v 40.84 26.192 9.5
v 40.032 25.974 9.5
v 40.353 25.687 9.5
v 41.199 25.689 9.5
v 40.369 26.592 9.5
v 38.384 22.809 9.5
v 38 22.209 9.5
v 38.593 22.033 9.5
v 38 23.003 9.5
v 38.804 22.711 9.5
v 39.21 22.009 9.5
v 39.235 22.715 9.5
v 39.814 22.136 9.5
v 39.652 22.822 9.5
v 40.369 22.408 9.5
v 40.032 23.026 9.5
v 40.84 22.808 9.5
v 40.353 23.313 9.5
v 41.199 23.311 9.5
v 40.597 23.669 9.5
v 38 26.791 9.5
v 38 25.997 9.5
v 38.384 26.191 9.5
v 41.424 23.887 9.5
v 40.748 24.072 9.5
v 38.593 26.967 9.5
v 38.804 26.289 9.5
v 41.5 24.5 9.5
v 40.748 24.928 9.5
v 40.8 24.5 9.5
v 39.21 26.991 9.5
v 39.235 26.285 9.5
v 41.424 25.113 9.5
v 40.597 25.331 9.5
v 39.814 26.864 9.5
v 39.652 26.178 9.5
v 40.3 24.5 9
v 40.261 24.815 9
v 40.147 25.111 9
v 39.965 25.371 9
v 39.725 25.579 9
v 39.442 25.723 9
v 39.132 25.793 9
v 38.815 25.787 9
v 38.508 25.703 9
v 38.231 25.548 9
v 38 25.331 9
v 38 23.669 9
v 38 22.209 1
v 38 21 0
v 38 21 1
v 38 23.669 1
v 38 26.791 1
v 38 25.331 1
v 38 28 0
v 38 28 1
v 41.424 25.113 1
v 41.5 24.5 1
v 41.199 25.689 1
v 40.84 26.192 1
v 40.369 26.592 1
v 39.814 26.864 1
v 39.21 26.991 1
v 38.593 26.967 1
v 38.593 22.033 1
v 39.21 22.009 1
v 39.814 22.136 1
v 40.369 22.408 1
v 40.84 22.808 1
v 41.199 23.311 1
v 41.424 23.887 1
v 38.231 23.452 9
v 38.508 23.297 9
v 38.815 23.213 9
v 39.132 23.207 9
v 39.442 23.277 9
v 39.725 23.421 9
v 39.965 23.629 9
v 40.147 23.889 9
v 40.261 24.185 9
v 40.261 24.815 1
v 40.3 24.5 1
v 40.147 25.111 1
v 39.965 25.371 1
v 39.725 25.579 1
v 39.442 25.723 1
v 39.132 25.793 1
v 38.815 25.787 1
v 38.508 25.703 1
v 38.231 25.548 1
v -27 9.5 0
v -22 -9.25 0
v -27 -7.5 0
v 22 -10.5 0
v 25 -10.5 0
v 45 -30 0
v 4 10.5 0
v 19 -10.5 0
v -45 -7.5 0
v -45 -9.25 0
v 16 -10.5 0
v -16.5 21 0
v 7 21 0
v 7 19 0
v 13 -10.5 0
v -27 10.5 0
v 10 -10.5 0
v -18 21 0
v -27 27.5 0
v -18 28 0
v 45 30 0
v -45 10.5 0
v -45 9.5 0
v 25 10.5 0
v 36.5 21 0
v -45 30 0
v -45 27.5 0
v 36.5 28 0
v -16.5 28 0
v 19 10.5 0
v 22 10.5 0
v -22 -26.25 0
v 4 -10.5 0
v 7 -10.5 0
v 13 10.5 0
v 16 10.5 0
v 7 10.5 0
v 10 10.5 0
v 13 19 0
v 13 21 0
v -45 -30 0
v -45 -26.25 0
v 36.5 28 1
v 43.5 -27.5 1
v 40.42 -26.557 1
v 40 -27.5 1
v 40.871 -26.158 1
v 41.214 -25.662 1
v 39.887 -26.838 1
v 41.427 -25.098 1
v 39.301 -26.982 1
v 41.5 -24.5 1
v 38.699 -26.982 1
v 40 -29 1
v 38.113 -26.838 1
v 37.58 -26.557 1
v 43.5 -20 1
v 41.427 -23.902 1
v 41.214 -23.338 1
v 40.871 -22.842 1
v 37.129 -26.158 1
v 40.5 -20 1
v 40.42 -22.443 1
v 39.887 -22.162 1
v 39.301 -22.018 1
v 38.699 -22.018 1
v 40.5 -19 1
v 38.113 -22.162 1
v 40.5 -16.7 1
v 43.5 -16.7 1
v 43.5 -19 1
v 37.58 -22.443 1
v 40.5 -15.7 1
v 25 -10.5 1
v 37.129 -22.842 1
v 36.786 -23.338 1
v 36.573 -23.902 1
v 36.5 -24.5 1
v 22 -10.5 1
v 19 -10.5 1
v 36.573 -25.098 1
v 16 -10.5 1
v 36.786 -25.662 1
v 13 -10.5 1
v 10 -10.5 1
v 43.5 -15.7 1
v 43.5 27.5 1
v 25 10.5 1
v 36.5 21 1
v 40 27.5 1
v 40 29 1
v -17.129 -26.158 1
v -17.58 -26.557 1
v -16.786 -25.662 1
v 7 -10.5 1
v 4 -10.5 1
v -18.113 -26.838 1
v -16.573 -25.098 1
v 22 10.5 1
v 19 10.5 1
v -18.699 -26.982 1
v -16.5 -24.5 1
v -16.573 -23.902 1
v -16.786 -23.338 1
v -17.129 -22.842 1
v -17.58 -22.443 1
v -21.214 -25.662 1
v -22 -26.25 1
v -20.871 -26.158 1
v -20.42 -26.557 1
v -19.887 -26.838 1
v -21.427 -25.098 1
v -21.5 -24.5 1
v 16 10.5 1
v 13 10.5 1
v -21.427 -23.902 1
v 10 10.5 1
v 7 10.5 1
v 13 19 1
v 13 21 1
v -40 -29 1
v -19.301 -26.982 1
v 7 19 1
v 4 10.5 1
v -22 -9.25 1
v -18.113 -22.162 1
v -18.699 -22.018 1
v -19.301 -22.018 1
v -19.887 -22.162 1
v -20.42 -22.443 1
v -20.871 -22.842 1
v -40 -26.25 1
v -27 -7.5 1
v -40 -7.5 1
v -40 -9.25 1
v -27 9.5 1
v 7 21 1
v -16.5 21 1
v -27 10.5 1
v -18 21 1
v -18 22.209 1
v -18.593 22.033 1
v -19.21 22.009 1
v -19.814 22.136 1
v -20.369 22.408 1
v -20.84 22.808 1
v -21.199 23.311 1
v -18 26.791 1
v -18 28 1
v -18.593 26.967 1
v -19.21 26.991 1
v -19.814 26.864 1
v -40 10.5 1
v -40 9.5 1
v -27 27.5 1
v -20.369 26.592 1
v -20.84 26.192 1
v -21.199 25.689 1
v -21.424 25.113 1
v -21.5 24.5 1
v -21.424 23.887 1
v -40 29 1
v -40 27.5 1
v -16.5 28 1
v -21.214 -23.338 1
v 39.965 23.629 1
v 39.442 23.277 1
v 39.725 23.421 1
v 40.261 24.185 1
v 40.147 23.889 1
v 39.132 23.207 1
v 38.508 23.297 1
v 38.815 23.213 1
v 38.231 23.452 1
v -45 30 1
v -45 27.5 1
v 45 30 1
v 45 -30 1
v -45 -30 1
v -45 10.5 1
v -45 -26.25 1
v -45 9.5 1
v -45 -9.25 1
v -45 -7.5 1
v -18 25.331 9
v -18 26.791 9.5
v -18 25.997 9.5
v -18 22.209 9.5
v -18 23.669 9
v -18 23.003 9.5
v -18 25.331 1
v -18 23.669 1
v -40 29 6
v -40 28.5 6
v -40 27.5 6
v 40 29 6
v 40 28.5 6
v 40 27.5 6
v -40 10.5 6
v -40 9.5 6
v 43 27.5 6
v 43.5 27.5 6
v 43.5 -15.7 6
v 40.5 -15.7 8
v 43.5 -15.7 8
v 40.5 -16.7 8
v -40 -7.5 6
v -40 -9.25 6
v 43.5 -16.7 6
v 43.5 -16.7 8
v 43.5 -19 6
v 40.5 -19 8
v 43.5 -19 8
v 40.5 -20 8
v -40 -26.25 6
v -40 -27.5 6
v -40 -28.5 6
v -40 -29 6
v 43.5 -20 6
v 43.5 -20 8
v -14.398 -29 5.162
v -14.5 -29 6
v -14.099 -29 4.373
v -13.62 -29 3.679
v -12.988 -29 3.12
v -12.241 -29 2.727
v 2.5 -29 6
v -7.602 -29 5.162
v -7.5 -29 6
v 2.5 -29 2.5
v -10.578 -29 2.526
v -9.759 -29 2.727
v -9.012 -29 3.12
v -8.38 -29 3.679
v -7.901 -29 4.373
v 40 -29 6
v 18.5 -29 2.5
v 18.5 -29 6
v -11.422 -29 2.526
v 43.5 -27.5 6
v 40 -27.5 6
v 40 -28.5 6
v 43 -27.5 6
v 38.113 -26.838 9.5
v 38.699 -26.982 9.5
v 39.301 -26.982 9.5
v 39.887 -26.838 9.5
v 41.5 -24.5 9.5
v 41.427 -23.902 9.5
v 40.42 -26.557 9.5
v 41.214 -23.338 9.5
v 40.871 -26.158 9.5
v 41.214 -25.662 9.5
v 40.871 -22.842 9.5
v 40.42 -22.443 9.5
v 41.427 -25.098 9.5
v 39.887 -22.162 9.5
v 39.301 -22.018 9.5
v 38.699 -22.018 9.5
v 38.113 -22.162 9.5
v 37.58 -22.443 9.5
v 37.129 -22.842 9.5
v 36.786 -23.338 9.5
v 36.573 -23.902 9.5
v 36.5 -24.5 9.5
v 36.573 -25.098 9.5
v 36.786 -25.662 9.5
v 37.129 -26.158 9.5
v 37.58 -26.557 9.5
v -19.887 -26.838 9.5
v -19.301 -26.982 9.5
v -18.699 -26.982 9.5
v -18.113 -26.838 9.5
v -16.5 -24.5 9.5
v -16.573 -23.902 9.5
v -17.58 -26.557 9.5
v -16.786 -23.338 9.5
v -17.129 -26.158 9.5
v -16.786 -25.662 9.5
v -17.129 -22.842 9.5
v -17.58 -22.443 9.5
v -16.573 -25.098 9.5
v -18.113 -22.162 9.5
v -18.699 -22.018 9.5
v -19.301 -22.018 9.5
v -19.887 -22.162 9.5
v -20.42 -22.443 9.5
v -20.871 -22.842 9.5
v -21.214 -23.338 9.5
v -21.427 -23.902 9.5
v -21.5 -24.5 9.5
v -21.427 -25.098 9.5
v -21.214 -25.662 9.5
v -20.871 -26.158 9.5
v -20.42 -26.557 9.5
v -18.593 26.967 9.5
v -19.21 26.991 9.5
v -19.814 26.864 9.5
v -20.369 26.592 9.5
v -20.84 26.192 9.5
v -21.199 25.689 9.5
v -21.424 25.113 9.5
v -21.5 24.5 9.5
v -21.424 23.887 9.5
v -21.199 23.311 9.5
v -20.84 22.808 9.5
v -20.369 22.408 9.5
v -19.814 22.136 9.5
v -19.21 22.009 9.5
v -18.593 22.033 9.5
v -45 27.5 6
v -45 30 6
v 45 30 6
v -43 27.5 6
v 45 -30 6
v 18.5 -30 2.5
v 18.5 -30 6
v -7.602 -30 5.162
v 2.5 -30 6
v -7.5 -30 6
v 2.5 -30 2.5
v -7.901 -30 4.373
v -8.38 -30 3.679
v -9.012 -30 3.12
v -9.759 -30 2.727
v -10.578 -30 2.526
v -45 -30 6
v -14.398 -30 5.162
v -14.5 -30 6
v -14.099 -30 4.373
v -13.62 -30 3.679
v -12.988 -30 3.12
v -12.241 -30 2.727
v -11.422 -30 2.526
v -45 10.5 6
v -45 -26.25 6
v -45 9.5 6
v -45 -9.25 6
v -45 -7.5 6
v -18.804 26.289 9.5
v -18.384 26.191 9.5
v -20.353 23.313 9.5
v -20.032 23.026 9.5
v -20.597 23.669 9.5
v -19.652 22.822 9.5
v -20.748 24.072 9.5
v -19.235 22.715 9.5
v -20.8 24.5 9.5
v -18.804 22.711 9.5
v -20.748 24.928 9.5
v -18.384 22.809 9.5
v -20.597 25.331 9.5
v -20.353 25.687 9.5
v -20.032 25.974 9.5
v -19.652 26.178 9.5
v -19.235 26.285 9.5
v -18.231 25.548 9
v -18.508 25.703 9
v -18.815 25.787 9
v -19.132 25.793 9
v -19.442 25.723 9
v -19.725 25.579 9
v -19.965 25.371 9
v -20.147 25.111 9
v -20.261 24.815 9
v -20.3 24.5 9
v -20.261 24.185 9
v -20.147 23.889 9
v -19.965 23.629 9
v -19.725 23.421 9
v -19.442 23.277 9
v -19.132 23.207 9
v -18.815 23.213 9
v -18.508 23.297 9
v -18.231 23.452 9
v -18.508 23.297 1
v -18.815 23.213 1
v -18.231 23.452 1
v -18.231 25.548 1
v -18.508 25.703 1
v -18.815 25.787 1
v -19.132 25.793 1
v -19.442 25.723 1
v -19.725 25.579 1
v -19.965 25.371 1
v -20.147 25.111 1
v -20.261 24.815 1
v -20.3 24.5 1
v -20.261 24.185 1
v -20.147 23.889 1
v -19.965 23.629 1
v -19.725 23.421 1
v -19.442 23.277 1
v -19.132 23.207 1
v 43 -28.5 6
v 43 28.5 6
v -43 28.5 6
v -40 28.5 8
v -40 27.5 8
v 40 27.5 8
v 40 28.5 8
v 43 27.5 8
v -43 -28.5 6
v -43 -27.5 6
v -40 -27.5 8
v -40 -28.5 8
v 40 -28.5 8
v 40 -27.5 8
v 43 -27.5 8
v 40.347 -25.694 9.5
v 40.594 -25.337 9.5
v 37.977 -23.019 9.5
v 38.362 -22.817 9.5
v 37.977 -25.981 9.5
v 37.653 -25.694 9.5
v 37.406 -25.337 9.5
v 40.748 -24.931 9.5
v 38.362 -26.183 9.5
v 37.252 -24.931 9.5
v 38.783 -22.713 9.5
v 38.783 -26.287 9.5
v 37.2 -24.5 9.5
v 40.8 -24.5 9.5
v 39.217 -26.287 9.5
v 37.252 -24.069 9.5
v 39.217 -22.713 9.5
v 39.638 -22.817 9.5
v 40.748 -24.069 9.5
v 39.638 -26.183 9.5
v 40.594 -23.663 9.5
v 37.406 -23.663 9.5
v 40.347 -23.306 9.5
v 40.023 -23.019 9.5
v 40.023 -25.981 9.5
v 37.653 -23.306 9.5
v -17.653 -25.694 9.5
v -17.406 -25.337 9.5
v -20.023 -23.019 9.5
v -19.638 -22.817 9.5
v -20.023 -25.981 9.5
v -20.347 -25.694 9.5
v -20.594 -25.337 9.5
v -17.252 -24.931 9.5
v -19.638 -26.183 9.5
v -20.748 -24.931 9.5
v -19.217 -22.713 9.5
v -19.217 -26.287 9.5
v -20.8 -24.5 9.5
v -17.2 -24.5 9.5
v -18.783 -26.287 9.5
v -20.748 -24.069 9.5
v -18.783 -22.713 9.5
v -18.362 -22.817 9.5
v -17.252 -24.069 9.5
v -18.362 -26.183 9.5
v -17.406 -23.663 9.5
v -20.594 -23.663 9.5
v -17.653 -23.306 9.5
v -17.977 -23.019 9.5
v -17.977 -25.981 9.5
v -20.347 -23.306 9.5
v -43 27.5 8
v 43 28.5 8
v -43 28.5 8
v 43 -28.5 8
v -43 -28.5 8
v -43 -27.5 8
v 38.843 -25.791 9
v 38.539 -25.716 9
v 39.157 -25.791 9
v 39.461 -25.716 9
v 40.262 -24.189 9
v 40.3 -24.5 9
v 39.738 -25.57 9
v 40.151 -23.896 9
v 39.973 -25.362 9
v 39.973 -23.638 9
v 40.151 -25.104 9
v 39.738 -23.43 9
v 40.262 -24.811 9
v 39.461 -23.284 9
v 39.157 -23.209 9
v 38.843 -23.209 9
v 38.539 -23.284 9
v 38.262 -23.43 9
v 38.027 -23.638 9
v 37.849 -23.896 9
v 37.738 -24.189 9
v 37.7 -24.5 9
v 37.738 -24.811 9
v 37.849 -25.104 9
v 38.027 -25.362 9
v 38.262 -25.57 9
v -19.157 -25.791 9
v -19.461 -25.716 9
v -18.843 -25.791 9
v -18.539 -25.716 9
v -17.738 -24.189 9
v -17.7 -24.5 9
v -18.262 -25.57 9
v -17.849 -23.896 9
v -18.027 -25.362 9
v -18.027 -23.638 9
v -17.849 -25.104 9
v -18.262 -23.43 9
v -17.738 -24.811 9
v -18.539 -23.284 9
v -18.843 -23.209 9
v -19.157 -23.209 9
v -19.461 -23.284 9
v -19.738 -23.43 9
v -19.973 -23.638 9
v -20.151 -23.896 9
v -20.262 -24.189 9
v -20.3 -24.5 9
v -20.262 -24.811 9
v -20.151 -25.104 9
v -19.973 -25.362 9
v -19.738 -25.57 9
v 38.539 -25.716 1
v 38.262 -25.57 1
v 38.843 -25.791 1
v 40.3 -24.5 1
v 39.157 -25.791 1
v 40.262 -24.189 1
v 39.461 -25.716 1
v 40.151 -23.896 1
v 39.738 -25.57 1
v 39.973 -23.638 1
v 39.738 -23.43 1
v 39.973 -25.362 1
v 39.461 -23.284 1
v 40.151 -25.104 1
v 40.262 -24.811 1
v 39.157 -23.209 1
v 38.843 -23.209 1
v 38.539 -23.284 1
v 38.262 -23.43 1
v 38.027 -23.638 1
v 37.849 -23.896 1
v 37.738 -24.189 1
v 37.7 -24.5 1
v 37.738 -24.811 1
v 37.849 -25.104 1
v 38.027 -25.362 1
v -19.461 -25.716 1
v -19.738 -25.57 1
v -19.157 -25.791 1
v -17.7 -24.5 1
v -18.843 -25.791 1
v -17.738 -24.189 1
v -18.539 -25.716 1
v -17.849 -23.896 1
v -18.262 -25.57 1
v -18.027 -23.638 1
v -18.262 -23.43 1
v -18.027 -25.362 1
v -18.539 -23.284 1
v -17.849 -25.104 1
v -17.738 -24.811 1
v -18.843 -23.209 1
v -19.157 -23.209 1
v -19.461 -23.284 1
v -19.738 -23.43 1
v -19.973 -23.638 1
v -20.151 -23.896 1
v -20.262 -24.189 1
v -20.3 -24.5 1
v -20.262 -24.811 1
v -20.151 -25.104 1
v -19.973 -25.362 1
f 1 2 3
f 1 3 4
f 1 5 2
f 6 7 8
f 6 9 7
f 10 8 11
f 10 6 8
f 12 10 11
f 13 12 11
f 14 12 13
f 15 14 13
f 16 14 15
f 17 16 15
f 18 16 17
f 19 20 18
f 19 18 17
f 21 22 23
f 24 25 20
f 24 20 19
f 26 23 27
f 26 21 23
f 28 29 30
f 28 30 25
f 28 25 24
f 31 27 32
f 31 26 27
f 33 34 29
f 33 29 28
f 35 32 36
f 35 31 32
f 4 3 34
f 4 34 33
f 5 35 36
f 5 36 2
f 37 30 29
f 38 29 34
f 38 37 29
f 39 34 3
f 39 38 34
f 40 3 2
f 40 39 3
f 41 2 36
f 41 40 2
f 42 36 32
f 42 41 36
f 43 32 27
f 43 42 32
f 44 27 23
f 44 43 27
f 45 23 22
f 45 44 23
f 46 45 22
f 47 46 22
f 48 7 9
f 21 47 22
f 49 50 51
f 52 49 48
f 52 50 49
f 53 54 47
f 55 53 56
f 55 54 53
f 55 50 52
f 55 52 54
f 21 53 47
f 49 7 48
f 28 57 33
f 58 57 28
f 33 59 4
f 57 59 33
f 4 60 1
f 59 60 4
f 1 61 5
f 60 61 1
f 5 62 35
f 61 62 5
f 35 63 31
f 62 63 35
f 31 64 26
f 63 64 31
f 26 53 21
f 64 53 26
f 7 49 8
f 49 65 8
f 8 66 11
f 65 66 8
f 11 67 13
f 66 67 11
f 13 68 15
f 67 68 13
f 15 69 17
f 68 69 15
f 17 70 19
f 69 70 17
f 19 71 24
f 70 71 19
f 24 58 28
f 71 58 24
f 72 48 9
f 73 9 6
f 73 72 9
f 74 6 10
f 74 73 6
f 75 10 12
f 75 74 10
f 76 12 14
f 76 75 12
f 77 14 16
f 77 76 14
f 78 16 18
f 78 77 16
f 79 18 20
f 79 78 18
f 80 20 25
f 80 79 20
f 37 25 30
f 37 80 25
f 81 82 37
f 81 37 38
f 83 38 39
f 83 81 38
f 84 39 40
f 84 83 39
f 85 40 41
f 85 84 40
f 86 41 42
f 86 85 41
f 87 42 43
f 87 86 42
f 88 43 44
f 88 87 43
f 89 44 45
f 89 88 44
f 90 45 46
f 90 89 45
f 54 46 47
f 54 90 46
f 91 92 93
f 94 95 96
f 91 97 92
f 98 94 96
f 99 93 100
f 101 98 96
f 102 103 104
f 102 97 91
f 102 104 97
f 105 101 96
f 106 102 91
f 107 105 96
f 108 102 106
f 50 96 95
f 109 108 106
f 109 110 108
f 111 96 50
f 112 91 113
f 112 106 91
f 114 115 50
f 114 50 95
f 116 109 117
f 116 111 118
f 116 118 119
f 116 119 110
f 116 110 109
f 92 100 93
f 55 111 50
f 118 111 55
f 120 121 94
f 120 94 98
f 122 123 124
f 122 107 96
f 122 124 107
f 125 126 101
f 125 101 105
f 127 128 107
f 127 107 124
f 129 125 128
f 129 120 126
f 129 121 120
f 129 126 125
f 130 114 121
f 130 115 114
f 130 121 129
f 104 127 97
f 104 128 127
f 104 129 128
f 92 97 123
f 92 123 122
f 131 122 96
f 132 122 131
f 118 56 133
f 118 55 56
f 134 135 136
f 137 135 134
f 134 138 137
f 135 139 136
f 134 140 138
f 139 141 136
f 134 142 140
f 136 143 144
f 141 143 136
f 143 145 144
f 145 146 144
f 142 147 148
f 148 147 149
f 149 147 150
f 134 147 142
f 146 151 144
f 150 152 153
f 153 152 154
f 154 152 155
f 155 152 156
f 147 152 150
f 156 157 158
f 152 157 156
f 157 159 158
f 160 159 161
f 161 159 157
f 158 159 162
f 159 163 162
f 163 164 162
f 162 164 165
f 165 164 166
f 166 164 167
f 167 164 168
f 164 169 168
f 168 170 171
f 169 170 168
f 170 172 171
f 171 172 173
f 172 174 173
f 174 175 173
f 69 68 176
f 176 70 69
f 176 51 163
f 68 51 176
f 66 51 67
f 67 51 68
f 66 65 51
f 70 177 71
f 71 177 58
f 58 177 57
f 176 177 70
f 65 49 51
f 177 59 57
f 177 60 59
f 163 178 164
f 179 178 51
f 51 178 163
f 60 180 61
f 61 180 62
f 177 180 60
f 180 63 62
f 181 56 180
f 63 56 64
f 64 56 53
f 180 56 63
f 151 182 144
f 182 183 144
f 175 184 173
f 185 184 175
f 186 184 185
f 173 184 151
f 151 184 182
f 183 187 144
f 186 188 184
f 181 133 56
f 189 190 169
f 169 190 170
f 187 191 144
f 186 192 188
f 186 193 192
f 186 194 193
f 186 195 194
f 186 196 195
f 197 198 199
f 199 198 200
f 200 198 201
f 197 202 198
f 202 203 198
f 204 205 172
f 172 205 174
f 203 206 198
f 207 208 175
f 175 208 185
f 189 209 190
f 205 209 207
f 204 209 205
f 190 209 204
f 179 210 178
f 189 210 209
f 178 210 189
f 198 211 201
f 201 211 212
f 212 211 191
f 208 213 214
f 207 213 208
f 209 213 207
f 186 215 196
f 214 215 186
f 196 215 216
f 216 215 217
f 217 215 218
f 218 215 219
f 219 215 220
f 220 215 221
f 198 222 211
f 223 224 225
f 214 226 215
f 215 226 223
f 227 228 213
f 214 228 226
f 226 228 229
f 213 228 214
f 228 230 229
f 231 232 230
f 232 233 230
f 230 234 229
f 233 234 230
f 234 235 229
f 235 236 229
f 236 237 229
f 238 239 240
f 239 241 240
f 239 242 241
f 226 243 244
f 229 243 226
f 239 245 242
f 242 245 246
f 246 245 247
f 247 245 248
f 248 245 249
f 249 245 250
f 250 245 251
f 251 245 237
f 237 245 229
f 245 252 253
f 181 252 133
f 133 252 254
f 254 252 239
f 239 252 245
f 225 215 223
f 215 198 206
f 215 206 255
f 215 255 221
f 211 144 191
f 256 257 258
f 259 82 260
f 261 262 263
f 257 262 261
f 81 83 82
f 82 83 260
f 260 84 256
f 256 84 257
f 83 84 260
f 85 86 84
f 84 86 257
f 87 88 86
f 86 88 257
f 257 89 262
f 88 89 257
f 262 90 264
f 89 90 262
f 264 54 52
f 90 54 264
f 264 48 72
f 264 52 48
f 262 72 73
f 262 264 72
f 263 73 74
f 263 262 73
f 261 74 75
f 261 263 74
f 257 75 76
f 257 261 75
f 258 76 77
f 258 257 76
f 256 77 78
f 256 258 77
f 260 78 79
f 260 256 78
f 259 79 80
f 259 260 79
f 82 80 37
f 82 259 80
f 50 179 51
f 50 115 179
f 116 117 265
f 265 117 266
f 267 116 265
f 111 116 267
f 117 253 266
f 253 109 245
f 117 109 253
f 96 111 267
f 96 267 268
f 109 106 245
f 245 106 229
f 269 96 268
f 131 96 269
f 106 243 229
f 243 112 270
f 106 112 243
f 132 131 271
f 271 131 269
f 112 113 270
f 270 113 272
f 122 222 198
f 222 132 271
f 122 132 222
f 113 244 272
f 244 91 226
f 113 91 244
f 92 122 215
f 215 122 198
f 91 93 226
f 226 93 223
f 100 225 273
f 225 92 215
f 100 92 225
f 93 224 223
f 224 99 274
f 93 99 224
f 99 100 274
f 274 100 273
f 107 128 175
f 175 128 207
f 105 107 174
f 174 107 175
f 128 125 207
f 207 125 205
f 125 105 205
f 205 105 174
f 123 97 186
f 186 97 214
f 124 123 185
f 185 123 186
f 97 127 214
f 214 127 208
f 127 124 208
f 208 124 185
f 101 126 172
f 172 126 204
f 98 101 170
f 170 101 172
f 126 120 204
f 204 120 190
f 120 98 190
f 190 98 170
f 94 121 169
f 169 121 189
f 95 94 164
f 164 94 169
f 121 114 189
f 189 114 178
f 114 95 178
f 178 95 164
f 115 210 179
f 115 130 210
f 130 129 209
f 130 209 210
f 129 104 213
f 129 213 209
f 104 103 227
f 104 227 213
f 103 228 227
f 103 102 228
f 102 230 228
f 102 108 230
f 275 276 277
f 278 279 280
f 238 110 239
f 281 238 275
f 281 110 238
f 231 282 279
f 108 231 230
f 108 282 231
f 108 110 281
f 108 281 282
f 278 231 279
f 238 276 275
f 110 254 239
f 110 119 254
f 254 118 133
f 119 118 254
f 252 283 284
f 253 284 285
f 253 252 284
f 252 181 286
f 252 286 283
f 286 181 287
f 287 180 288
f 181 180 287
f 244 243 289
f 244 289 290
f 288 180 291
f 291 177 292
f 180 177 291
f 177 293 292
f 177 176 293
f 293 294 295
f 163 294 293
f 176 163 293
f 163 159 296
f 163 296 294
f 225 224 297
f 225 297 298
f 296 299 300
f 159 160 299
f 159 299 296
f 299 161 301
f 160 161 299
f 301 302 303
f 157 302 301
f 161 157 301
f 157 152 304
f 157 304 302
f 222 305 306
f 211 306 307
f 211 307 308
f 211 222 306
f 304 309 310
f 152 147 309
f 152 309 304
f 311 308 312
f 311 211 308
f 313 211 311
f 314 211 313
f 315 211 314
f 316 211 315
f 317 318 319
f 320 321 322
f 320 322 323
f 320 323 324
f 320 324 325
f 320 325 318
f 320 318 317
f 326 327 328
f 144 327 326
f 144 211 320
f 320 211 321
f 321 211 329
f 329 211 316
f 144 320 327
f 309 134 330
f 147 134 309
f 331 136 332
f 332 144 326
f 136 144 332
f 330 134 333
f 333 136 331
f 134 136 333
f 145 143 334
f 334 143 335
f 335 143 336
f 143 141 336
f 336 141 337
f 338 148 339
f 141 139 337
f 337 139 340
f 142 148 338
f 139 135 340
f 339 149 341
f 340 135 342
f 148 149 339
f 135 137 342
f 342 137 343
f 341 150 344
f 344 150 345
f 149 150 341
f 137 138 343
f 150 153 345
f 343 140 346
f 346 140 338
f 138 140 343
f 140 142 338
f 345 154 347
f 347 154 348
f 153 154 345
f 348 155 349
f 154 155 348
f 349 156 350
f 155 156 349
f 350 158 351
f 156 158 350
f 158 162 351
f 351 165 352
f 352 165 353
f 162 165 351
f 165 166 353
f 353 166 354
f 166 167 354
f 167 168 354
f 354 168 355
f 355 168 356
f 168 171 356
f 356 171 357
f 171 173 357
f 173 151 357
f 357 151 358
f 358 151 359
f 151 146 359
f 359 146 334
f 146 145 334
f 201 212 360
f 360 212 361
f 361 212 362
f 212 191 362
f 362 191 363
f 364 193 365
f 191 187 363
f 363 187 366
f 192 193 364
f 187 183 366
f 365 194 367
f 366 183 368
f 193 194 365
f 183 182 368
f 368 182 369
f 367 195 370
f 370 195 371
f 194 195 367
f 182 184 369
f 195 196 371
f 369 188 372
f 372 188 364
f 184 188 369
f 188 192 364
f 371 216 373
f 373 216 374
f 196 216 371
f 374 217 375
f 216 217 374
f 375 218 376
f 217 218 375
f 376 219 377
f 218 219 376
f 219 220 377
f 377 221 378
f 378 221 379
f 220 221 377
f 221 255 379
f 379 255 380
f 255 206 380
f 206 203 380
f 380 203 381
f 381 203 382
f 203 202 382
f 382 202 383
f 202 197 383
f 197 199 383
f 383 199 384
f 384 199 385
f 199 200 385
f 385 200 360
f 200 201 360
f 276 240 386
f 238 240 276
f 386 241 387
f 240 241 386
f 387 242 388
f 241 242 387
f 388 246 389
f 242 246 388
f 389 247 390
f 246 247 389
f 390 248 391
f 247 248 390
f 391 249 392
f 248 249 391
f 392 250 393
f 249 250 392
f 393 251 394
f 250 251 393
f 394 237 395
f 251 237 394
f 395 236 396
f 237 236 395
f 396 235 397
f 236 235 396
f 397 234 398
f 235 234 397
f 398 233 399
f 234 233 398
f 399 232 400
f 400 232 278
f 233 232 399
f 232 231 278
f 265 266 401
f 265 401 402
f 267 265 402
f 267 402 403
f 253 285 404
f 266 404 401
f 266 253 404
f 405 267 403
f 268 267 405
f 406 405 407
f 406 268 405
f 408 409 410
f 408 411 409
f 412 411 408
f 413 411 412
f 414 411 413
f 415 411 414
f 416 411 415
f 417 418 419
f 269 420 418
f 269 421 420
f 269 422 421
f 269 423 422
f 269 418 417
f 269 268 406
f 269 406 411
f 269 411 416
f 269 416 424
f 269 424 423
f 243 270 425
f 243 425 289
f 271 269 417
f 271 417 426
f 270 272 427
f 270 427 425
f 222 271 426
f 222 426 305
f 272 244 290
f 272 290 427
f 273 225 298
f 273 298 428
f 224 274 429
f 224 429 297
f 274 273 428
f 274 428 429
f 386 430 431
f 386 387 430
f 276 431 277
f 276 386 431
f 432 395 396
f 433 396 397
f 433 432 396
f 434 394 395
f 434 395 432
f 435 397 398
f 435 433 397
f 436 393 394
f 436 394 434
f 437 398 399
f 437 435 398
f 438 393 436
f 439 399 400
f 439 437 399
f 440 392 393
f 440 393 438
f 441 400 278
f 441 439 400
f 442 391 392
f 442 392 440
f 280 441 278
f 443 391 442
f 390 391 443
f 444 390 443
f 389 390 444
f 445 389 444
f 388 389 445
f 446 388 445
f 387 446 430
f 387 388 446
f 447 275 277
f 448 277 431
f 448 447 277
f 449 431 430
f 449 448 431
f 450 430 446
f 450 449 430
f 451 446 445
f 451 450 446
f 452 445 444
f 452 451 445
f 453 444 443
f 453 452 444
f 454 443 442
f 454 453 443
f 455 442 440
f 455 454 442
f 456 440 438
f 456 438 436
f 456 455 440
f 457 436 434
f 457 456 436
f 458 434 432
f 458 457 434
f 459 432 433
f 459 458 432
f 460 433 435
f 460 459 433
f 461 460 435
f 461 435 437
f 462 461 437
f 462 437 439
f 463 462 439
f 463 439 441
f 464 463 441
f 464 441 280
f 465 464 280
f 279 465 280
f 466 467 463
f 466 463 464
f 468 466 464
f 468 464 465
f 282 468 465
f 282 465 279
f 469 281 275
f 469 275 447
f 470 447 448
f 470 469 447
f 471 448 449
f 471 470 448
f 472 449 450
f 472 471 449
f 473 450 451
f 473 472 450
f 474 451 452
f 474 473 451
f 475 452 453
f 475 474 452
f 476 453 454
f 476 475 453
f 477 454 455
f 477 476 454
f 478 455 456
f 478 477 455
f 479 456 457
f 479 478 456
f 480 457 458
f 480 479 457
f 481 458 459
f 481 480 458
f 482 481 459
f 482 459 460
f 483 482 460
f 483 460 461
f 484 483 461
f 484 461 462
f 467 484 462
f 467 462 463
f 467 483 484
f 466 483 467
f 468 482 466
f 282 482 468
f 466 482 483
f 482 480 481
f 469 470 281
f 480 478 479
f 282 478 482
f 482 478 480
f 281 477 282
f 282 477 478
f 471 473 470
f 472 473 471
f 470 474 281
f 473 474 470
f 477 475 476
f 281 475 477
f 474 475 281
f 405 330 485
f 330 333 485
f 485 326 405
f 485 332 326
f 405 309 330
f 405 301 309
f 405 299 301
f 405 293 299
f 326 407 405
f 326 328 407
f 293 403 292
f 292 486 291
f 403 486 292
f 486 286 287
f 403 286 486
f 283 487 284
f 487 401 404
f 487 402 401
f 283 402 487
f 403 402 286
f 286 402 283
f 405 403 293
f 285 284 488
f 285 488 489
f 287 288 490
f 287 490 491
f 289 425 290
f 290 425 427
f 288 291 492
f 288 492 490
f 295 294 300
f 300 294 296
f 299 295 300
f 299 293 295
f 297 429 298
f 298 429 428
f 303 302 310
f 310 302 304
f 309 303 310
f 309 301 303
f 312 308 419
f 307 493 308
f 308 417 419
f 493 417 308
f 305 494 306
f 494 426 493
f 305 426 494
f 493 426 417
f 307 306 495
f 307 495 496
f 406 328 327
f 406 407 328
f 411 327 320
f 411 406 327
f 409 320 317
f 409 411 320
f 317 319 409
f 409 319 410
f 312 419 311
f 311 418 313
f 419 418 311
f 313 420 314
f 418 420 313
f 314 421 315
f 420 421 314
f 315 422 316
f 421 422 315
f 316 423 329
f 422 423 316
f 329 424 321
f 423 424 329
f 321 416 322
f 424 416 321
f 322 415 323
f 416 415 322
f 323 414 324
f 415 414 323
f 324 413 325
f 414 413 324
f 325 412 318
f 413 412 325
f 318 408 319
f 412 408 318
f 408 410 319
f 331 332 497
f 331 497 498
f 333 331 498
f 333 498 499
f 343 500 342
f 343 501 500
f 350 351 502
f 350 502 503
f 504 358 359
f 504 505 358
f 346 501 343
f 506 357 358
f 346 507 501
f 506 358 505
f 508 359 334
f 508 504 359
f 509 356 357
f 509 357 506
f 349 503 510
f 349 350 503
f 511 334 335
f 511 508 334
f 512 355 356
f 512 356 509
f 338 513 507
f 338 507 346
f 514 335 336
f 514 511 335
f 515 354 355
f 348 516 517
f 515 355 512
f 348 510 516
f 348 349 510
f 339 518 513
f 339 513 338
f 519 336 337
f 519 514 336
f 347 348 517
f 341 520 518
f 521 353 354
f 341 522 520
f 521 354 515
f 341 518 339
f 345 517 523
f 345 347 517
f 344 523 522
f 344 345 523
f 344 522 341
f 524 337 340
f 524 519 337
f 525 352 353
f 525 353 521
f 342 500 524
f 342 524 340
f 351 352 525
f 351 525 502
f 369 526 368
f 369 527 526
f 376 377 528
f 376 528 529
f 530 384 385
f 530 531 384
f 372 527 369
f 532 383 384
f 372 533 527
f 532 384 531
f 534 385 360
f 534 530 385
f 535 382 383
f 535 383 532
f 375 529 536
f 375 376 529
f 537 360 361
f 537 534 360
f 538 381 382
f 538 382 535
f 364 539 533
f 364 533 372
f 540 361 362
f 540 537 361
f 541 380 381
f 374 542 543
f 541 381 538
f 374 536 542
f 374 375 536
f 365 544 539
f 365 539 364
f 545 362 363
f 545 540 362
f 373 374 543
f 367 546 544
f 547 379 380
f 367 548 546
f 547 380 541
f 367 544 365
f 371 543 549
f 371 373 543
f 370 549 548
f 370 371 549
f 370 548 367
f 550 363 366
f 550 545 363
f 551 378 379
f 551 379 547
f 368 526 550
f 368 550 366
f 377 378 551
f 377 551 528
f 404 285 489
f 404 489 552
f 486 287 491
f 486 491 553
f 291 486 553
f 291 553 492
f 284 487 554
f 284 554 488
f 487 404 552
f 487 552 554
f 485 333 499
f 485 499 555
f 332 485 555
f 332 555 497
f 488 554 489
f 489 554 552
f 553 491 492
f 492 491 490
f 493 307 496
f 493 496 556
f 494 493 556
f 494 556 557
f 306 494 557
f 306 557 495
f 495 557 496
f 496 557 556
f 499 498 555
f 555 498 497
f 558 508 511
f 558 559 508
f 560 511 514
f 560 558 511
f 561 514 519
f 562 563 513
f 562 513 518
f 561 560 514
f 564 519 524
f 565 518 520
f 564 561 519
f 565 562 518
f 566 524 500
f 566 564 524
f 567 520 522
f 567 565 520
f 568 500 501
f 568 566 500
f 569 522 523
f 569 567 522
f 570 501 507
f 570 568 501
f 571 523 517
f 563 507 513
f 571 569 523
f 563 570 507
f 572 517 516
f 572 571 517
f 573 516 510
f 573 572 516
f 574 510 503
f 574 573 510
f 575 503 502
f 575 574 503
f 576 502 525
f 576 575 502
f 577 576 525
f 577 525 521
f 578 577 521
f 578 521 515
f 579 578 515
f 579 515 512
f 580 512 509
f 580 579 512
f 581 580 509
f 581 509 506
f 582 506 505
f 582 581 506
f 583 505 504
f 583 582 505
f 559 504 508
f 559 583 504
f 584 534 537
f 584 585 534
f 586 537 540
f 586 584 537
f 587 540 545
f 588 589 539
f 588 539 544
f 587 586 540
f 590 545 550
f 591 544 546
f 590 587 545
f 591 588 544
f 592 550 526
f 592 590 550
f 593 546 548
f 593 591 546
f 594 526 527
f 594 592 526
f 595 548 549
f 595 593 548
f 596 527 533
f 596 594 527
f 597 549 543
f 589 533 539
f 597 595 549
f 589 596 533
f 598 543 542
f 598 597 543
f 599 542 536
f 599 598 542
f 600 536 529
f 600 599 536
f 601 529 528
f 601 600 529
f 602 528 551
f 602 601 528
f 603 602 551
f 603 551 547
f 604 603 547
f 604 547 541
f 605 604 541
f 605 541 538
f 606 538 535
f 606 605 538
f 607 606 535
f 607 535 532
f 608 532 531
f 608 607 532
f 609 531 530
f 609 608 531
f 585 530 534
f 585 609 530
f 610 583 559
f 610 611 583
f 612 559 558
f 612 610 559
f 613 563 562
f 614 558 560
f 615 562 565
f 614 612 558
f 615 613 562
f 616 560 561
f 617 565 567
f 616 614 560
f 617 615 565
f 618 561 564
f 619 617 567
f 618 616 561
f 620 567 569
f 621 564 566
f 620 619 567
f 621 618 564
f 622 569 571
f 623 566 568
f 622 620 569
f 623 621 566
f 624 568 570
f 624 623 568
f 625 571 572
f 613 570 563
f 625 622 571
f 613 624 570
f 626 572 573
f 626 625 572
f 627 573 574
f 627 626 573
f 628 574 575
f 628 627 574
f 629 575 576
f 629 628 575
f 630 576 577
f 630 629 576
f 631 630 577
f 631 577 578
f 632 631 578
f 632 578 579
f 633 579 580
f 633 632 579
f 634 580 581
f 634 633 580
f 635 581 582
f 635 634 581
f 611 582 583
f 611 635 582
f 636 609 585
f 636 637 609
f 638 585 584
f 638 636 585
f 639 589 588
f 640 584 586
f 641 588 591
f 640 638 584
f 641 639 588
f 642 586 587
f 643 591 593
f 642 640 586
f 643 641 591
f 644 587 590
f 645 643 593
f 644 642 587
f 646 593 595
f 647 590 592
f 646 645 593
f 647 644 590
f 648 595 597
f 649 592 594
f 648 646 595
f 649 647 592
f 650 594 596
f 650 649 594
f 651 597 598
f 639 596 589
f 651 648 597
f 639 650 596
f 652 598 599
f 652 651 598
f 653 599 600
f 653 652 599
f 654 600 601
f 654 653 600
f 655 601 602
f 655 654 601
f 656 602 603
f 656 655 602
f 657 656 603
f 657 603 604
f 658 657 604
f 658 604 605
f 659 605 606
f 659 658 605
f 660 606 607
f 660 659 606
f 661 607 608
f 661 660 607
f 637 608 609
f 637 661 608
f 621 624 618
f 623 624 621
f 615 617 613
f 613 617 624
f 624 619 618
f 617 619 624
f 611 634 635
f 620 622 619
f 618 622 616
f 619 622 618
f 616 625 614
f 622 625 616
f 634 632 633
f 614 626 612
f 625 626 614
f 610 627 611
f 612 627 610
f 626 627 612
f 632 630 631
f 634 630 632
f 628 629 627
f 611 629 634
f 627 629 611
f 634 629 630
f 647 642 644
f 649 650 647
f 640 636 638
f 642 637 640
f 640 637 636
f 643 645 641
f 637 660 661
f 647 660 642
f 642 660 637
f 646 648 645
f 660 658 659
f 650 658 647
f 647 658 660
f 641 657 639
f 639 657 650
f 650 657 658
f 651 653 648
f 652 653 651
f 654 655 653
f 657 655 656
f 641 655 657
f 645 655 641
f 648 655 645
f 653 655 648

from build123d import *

# Parameters (mm, degrees)
SKETCH_W        = 3
SKETCH_H        = 21
PAD_DEPTH       = 1
SKETCH001_W     = 5
SKETCH001_H     = 1.75
SKETCH001_H_2   = 1
PAD001_DEPTH    = 5
SKETCH002_W     = 3
SKETCH002_H     = 1
PAD002_DEPTH    = 2
SKETCH003_R     = 2.5
SKETCH003_R_2   = 1.3
PAD003_DEPTH    = 8.5
SKETCH004_W     = 16
SKETCH004_H     = 3.5
POCKET_DEPTH    = 1
CHAMFER_SIZE    = 0.5
SKETCH005_W     = 3
SKETCH005_H     = 1
PAD004_DEPTH    = 7
SKETCH006_W     = 56
SKETCH006_H     = 7
POCKET001_DEPTH = 9.501


with BuildPart() as part:
    # Sketch → Pad (new body)
    with BuildSketch(Plane.XY):
        Polygon((-45, 30), (45, 30), (45, -30), (-45, -30), (-45, -26.25), (-22, -26.25), (-22, -9.25), (-45, -9.25), (-45, -7.5), (-27, -7.5), (-27, 9.5), (-45, 9.5), (-45, 10.5), (-27, 10.5), (-27, 27.5), (-45, 27.5), align=None)
        Polygon((36.5, 21), (36.5, 28), (-16.5, 28), (-16.5, 21), (7, 21), (7, 19), (13, 19), (13, 21), align=None, mode=Mode.SUBTRACT)
        with Locations((5.5, 0)):
            Rectangle(SKETCH_W, SKETCH_H, mode=Mode.SUBTRACT)
        with Locations((11.5, 0)):
            Rectangle(SKETCH_W, SKETCH_H, mode=Mode.SUBTRACT)
        with Locations((17.5, 0)):
            Rectangle(SKETCH_W, SKETCH_H, mode=Mode.SUBTRACT)
        with Locations((23.5, 0)):
            Rectangle(SKETCH_W, SKETCH_H, mode=Mode.SUBTRACT)
    extrude(amount=PAD_DEPTH)

    # Sketch001 (on Face42 of Pad) → Pad001 (join)
    with BuildSketch(Plane.XY.offset(1)):
        with Locations((-42.5, -8.375)):
            Rectangle(SKETCH001_W, SKETCH001_H)
        with Locations((-42.5, 10)):
            Rectangle(SKETCH001_W, SKETCH001_H_2)
        Polygon((-45, 30), (45, 30), (45, -30), (-45, -30), (-45, -26.25), (-40, -26.25), (-40, -29), (40, -29), (40, -27.5), (43.5, -27.5), (43.5, 27.5), (40, 27.5), (40, 29), (-40, 29), (-40, 27.5), (-45, 27.5), align=None)
    extrude(amount=PAD001_DEPTH)

    # Sketch002 (on Face56 of Pad001) → Pad002 (join)
    with BuildSketch(Plane.XY.offset(6)):
        with Locations((41.5, 28)):
            Rectangle(SKETCH002_W, SKETCH002_H)
        with Locations((-41.5, 28)):
            Rectangle(SKETCH002_W, SKETCH002_H)
        with Locations((-41.5, -28)):
            Rectangle(SKETCH002_W, SKETCH002_H)
        with Locations((41.5, -28)):
            Rectangle(SKETCH002_W, SKETCH002_H)
    extrude(amount=PAD002_DEPTH)

    # Sketch003 (on Face47 of Pad002) → Pad003 (join)
    with BuildSketch(Plane.XY.offset(1)):
        with Locations((-19, 24.5)):
            Circle(SKETCH003_R)
        with Locations((-19, 24.5)):
            Circle(SKETCH003_R_2, mode=Mode.SUBTRACT)
        with Locations((39, 24.5)):
            Circle(SKETCH003_R)
        with Locations((39, 24.5)):
            Circle(SKETCH003_R_2, mode=Mode.SUBTRACT)
        with Locations((-19, -24.5)):
            Circle(SKETCH003_R)
        with Locations((-19, -24.5)):
            Circle(SKETCH003_R_2, mode=Mode.SUBTRACT)
        with Locations((39, -24.5)):
            Circle(SKETCH003_R)
        with Locations((39, -24.5)):
            Circle(SKETCH003_R_2, mode=Mode.SUBTRACT)
    extrude(amount=PAD003_DEPTH)

    # Sketch004 (on Face45 of Pad003) → Pocket (cut)
    with BuildSketch(Plane.XZ.offset(30)):
        with BuildLine():
            ThreePointArc((-14.5, 6), (-11, 2.5), (-7.5, 6))
            Line((-14.5, 6), (-7.5, 6))
        make_face()
        with Locations((10.5, 4.25)):
            Rectangle(SKETCH004_W, SKETCH004_H)
    extrude(amount=-POCKET_DEPTH, mode=Mode.SUBTRACT)

    # Chamfer
    chamfer_edges = [part.edges().sort_by_distance(p)[0] for p in [
        (-20.3, 24.5, 9.5),
        (37.7, 24.5, 9.5),
        (-20.3, -24.5, 9.5),
        (37.7, -24.5, 9.5),
    ]]
    chamfer(chamfer_edges, length=CHAMFER_SIZE)

    # Sketch005 (on Face5 of Chamfer) → Pad004 (join)
    with BuildSketch(Plane.XY.offset(1)):
        with Locations((42, -16.2)):
            Rectangle(SKETCH005_W, SKETCH005_H)
        with Locations((42, -19.5)):
            Rectangle(SKETCH005_W, SKETCH005_H)
    extrude(amount=PAD004_DEPTH)

    # Sketch006 (on Face63 of Pad004) → Pocket001 (cut, through all)
    with BuildSketch(Plane(origin=(0, 0, 0), x_dir=(1, 0, 0), z_dir=(0, 0, -1))):
        with Locations((10, -24.5)):
            Rectangle(SKETCH006_W, SKETCH006_H)
    extrude(amount=-POCKET001_DEPTH, mode=Mode.SUBTRACT)


solid = part.part
